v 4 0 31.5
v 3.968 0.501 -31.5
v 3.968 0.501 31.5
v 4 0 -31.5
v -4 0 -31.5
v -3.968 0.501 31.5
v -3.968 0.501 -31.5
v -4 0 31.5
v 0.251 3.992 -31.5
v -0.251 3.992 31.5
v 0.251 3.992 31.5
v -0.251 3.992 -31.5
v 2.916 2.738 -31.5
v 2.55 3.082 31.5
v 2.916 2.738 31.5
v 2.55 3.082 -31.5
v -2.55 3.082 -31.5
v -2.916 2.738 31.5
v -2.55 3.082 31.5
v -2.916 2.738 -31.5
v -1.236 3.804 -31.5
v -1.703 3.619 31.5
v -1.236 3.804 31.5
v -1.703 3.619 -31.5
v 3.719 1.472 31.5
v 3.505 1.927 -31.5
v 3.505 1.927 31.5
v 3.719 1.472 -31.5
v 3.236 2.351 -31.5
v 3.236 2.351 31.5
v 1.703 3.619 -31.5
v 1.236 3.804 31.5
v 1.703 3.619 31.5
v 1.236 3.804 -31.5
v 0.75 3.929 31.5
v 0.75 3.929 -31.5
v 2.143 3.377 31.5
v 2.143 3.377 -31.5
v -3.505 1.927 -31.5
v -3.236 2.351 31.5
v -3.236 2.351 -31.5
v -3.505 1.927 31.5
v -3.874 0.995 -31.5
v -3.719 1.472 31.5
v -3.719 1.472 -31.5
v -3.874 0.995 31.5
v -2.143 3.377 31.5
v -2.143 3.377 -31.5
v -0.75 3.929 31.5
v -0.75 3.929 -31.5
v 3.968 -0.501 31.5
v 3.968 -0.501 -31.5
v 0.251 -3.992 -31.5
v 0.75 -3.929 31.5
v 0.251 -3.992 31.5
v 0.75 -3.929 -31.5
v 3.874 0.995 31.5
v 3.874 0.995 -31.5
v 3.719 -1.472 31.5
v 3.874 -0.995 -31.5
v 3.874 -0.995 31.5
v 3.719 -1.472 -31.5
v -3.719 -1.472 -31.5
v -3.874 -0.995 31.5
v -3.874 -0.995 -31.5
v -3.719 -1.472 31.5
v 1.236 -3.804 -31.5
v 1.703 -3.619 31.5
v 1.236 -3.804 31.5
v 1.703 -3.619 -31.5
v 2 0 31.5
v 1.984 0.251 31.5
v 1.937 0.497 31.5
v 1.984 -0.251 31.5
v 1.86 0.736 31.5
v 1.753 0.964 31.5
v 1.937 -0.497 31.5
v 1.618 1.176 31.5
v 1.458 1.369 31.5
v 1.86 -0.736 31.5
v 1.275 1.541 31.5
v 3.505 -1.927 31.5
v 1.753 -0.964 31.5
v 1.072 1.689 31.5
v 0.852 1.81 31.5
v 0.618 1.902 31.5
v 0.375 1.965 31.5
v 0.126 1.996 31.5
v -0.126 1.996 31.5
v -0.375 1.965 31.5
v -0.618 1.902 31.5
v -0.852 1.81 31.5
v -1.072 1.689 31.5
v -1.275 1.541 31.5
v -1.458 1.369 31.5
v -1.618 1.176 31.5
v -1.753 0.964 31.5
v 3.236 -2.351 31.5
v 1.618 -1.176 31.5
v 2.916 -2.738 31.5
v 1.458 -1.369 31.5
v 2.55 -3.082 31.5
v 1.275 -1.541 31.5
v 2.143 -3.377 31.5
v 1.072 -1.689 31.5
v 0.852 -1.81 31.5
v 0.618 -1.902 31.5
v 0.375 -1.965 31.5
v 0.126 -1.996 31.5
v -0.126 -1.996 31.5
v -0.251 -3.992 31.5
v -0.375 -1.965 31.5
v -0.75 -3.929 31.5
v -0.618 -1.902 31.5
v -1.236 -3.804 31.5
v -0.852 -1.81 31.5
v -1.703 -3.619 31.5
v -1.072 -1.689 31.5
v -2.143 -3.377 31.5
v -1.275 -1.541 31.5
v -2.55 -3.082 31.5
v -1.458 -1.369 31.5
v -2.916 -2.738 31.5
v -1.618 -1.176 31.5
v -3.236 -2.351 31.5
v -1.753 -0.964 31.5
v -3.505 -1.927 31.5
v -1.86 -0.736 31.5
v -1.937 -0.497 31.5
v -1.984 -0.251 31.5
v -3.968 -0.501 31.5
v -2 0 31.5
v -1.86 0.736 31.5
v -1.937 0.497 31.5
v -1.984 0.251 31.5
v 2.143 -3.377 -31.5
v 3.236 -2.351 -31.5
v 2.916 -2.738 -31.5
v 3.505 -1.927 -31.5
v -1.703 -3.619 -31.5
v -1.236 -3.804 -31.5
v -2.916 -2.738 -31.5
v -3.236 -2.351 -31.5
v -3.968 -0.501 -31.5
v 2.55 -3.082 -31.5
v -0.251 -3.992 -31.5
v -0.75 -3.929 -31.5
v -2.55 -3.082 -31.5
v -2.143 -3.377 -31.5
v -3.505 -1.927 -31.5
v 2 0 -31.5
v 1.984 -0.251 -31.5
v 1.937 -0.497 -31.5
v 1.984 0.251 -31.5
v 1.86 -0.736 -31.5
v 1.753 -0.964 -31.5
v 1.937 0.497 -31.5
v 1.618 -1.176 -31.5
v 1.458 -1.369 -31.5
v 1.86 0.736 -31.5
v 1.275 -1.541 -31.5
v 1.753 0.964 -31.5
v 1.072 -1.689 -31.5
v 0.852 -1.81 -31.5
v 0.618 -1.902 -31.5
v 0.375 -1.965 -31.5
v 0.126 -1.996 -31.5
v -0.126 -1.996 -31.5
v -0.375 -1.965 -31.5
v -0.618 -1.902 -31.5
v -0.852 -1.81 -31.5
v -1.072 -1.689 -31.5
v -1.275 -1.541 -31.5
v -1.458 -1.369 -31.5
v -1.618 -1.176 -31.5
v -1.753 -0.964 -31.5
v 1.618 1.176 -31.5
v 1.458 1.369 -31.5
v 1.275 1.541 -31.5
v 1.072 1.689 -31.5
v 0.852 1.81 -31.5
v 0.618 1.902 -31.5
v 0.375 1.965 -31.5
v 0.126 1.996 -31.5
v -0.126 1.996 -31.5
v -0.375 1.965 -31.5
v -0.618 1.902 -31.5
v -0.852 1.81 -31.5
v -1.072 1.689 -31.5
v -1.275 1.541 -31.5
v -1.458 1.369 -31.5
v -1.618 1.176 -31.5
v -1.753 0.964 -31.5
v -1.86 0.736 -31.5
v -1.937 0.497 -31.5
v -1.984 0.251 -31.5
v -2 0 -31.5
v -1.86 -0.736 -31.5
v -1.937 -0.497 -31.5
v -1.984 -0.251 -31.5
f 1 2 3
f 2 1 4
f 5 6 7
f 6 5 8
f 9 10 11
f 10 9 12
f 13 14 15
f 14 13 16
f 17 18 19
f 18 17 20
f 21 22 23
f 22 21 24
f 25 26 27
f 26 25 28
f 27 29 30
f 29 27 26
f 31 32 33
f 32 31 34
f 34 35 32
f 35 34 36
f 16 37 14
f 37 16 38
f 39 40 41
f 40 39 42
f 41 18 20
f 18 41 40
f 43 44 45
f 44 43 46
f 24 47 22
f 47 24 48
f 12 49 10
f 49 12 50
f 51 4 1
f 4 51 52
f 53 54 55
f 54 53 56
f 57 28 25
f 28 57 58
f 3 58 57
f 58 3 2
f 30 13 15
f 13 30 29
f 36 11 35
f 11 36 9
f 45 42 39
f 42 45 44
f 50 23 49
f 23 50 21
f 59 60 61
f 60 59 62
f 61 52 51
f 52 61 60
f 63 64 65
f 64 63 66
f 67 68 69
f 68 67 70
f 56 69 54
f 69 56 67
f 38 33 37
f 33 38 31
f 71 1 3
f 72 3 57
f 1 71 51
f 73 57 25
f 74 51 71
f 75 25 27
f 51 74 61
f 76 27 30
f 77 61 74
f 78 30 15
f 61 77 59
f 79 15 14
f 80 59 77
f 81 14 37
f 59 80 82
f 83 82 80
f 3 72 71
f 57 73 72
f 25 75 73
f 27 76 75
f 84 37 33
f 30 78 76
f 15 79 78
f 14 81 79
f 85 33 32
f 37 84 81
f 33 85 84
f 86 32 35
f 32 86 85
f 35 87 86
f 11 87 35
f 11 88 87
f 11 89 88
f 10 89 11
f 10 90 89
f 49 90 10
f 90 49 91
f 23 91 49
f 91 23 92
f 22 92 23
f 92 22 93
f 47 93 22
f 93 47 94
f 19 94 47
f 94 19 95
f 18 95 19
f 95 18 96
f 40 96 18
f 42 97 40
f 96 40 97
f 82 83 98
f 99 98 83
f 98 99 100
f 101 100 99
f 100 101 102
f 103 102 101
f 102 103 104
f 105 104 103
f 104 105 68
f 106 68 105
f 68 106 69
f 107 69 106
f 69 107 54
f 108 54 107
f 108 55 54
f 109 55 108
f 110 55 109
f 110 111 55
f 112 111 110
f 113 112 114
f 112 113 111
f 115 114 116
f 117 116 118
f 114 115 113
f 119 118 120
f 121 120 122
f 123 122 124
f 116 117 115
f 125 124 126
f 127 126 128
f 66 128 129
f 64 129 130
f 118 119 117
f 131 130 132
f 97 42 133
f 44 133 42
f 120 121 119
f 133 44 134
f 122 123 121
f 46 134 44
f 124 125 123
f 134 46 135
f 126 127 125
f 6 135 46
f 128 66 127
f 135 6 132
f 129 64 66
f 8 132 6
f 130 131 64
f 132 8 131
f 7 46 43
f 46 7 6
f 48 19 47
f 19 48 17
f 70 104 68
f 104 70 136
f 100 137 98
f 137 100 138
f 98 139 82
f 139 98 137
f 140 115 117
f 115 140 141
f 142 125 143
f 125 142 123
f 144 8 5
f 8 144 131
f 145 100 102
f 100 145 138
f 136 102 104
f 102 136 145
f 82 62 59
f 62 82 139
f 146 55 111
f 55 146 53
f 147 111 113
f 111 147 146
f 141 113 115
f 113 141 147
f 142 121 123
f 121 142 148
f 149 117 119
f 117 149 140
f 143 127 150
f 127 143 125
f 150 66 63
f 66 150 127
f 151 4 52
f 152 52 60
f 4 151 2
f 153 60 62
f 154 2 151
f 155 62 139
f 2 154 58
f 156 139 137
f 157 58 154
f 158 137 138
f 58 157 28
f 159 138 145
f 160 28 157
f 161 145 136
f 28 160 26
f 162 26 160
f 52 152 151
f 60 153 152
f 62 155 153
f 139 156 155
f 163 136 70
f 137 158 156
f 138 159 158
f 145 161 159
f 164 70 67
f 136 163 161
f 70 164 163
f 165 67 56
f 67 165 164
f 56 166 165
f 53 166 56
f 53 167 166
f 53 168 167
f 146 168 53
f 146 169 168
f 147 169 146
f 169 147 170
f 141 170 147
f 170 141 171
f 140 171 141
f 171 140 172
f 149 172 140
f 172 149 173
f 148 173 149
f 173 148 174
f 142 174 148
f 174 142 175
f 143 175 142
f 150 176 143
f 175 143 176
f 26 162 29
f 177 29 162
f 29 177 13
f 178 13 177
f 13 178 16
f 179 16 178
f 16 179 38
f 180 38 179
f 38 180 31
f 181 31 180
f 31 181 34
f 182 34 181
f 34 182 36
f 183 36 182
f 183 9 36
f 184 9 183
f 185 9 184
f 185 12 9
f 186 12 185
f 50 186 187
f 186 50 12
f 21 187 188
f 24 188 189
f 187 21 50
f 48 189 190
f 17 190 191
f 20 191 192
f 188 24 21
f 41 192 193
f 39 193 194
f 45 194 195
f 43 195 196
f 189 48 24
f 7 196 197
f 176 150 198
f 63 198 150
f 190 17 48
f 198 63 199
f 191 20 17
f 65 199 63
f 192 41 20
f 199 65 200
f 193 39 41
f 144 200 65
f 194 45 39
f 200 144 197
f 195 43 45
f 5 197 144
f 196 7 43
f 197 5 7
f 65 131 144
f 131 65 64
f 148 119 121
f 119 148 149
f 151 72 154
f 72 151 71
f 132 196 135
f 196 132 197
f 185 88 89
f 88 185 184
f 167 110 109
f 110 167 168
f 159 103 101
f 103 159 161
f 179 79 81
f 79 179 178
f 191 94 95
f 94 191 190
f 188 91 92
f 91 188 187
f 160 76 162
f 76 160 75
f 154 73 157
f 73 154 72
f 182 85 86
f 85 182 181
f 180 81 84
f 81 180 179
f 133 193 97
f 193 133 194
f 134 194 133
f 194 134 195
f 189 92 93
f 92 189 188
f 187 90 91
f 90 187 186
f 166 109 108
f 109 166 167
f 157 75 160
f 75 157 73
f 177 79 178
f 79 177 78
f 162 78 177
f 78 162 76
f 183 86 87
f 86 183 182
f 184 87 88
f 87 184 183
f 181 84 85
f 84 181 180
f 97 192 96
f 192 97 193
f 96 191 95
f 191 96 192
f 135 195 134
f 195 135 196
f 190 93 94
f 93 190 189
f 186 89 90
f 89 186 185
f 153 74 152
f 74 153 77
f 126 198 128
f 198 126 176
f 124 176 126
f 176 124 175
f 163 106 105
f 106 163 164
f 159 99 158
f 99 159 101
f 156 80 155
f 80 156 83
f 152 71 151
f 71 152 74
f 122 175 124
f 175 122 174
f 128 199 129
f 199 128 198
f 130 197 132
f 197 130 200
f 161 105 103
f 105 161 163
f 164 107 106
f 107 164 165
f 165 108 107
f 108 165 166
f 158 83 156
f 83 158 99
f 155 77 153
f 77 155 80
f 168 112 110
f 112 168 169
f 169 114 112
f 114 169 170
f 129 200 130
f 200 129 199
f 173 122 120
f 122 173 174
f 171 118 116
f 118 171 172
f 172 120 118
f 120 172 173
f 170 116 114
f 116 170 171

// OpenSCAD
$fn = 50;


difference() {
	union() {
		translate(v = [0, 0, -31.5000000000]) {
			cylinder(h = 63, r = 4.0000000000);
		}
	}
	union() {
		translate(v = [0, 0, -100.0000000000]) {
			cylinder(h = 200, r = 2.0000000000);
		}
	}
}
